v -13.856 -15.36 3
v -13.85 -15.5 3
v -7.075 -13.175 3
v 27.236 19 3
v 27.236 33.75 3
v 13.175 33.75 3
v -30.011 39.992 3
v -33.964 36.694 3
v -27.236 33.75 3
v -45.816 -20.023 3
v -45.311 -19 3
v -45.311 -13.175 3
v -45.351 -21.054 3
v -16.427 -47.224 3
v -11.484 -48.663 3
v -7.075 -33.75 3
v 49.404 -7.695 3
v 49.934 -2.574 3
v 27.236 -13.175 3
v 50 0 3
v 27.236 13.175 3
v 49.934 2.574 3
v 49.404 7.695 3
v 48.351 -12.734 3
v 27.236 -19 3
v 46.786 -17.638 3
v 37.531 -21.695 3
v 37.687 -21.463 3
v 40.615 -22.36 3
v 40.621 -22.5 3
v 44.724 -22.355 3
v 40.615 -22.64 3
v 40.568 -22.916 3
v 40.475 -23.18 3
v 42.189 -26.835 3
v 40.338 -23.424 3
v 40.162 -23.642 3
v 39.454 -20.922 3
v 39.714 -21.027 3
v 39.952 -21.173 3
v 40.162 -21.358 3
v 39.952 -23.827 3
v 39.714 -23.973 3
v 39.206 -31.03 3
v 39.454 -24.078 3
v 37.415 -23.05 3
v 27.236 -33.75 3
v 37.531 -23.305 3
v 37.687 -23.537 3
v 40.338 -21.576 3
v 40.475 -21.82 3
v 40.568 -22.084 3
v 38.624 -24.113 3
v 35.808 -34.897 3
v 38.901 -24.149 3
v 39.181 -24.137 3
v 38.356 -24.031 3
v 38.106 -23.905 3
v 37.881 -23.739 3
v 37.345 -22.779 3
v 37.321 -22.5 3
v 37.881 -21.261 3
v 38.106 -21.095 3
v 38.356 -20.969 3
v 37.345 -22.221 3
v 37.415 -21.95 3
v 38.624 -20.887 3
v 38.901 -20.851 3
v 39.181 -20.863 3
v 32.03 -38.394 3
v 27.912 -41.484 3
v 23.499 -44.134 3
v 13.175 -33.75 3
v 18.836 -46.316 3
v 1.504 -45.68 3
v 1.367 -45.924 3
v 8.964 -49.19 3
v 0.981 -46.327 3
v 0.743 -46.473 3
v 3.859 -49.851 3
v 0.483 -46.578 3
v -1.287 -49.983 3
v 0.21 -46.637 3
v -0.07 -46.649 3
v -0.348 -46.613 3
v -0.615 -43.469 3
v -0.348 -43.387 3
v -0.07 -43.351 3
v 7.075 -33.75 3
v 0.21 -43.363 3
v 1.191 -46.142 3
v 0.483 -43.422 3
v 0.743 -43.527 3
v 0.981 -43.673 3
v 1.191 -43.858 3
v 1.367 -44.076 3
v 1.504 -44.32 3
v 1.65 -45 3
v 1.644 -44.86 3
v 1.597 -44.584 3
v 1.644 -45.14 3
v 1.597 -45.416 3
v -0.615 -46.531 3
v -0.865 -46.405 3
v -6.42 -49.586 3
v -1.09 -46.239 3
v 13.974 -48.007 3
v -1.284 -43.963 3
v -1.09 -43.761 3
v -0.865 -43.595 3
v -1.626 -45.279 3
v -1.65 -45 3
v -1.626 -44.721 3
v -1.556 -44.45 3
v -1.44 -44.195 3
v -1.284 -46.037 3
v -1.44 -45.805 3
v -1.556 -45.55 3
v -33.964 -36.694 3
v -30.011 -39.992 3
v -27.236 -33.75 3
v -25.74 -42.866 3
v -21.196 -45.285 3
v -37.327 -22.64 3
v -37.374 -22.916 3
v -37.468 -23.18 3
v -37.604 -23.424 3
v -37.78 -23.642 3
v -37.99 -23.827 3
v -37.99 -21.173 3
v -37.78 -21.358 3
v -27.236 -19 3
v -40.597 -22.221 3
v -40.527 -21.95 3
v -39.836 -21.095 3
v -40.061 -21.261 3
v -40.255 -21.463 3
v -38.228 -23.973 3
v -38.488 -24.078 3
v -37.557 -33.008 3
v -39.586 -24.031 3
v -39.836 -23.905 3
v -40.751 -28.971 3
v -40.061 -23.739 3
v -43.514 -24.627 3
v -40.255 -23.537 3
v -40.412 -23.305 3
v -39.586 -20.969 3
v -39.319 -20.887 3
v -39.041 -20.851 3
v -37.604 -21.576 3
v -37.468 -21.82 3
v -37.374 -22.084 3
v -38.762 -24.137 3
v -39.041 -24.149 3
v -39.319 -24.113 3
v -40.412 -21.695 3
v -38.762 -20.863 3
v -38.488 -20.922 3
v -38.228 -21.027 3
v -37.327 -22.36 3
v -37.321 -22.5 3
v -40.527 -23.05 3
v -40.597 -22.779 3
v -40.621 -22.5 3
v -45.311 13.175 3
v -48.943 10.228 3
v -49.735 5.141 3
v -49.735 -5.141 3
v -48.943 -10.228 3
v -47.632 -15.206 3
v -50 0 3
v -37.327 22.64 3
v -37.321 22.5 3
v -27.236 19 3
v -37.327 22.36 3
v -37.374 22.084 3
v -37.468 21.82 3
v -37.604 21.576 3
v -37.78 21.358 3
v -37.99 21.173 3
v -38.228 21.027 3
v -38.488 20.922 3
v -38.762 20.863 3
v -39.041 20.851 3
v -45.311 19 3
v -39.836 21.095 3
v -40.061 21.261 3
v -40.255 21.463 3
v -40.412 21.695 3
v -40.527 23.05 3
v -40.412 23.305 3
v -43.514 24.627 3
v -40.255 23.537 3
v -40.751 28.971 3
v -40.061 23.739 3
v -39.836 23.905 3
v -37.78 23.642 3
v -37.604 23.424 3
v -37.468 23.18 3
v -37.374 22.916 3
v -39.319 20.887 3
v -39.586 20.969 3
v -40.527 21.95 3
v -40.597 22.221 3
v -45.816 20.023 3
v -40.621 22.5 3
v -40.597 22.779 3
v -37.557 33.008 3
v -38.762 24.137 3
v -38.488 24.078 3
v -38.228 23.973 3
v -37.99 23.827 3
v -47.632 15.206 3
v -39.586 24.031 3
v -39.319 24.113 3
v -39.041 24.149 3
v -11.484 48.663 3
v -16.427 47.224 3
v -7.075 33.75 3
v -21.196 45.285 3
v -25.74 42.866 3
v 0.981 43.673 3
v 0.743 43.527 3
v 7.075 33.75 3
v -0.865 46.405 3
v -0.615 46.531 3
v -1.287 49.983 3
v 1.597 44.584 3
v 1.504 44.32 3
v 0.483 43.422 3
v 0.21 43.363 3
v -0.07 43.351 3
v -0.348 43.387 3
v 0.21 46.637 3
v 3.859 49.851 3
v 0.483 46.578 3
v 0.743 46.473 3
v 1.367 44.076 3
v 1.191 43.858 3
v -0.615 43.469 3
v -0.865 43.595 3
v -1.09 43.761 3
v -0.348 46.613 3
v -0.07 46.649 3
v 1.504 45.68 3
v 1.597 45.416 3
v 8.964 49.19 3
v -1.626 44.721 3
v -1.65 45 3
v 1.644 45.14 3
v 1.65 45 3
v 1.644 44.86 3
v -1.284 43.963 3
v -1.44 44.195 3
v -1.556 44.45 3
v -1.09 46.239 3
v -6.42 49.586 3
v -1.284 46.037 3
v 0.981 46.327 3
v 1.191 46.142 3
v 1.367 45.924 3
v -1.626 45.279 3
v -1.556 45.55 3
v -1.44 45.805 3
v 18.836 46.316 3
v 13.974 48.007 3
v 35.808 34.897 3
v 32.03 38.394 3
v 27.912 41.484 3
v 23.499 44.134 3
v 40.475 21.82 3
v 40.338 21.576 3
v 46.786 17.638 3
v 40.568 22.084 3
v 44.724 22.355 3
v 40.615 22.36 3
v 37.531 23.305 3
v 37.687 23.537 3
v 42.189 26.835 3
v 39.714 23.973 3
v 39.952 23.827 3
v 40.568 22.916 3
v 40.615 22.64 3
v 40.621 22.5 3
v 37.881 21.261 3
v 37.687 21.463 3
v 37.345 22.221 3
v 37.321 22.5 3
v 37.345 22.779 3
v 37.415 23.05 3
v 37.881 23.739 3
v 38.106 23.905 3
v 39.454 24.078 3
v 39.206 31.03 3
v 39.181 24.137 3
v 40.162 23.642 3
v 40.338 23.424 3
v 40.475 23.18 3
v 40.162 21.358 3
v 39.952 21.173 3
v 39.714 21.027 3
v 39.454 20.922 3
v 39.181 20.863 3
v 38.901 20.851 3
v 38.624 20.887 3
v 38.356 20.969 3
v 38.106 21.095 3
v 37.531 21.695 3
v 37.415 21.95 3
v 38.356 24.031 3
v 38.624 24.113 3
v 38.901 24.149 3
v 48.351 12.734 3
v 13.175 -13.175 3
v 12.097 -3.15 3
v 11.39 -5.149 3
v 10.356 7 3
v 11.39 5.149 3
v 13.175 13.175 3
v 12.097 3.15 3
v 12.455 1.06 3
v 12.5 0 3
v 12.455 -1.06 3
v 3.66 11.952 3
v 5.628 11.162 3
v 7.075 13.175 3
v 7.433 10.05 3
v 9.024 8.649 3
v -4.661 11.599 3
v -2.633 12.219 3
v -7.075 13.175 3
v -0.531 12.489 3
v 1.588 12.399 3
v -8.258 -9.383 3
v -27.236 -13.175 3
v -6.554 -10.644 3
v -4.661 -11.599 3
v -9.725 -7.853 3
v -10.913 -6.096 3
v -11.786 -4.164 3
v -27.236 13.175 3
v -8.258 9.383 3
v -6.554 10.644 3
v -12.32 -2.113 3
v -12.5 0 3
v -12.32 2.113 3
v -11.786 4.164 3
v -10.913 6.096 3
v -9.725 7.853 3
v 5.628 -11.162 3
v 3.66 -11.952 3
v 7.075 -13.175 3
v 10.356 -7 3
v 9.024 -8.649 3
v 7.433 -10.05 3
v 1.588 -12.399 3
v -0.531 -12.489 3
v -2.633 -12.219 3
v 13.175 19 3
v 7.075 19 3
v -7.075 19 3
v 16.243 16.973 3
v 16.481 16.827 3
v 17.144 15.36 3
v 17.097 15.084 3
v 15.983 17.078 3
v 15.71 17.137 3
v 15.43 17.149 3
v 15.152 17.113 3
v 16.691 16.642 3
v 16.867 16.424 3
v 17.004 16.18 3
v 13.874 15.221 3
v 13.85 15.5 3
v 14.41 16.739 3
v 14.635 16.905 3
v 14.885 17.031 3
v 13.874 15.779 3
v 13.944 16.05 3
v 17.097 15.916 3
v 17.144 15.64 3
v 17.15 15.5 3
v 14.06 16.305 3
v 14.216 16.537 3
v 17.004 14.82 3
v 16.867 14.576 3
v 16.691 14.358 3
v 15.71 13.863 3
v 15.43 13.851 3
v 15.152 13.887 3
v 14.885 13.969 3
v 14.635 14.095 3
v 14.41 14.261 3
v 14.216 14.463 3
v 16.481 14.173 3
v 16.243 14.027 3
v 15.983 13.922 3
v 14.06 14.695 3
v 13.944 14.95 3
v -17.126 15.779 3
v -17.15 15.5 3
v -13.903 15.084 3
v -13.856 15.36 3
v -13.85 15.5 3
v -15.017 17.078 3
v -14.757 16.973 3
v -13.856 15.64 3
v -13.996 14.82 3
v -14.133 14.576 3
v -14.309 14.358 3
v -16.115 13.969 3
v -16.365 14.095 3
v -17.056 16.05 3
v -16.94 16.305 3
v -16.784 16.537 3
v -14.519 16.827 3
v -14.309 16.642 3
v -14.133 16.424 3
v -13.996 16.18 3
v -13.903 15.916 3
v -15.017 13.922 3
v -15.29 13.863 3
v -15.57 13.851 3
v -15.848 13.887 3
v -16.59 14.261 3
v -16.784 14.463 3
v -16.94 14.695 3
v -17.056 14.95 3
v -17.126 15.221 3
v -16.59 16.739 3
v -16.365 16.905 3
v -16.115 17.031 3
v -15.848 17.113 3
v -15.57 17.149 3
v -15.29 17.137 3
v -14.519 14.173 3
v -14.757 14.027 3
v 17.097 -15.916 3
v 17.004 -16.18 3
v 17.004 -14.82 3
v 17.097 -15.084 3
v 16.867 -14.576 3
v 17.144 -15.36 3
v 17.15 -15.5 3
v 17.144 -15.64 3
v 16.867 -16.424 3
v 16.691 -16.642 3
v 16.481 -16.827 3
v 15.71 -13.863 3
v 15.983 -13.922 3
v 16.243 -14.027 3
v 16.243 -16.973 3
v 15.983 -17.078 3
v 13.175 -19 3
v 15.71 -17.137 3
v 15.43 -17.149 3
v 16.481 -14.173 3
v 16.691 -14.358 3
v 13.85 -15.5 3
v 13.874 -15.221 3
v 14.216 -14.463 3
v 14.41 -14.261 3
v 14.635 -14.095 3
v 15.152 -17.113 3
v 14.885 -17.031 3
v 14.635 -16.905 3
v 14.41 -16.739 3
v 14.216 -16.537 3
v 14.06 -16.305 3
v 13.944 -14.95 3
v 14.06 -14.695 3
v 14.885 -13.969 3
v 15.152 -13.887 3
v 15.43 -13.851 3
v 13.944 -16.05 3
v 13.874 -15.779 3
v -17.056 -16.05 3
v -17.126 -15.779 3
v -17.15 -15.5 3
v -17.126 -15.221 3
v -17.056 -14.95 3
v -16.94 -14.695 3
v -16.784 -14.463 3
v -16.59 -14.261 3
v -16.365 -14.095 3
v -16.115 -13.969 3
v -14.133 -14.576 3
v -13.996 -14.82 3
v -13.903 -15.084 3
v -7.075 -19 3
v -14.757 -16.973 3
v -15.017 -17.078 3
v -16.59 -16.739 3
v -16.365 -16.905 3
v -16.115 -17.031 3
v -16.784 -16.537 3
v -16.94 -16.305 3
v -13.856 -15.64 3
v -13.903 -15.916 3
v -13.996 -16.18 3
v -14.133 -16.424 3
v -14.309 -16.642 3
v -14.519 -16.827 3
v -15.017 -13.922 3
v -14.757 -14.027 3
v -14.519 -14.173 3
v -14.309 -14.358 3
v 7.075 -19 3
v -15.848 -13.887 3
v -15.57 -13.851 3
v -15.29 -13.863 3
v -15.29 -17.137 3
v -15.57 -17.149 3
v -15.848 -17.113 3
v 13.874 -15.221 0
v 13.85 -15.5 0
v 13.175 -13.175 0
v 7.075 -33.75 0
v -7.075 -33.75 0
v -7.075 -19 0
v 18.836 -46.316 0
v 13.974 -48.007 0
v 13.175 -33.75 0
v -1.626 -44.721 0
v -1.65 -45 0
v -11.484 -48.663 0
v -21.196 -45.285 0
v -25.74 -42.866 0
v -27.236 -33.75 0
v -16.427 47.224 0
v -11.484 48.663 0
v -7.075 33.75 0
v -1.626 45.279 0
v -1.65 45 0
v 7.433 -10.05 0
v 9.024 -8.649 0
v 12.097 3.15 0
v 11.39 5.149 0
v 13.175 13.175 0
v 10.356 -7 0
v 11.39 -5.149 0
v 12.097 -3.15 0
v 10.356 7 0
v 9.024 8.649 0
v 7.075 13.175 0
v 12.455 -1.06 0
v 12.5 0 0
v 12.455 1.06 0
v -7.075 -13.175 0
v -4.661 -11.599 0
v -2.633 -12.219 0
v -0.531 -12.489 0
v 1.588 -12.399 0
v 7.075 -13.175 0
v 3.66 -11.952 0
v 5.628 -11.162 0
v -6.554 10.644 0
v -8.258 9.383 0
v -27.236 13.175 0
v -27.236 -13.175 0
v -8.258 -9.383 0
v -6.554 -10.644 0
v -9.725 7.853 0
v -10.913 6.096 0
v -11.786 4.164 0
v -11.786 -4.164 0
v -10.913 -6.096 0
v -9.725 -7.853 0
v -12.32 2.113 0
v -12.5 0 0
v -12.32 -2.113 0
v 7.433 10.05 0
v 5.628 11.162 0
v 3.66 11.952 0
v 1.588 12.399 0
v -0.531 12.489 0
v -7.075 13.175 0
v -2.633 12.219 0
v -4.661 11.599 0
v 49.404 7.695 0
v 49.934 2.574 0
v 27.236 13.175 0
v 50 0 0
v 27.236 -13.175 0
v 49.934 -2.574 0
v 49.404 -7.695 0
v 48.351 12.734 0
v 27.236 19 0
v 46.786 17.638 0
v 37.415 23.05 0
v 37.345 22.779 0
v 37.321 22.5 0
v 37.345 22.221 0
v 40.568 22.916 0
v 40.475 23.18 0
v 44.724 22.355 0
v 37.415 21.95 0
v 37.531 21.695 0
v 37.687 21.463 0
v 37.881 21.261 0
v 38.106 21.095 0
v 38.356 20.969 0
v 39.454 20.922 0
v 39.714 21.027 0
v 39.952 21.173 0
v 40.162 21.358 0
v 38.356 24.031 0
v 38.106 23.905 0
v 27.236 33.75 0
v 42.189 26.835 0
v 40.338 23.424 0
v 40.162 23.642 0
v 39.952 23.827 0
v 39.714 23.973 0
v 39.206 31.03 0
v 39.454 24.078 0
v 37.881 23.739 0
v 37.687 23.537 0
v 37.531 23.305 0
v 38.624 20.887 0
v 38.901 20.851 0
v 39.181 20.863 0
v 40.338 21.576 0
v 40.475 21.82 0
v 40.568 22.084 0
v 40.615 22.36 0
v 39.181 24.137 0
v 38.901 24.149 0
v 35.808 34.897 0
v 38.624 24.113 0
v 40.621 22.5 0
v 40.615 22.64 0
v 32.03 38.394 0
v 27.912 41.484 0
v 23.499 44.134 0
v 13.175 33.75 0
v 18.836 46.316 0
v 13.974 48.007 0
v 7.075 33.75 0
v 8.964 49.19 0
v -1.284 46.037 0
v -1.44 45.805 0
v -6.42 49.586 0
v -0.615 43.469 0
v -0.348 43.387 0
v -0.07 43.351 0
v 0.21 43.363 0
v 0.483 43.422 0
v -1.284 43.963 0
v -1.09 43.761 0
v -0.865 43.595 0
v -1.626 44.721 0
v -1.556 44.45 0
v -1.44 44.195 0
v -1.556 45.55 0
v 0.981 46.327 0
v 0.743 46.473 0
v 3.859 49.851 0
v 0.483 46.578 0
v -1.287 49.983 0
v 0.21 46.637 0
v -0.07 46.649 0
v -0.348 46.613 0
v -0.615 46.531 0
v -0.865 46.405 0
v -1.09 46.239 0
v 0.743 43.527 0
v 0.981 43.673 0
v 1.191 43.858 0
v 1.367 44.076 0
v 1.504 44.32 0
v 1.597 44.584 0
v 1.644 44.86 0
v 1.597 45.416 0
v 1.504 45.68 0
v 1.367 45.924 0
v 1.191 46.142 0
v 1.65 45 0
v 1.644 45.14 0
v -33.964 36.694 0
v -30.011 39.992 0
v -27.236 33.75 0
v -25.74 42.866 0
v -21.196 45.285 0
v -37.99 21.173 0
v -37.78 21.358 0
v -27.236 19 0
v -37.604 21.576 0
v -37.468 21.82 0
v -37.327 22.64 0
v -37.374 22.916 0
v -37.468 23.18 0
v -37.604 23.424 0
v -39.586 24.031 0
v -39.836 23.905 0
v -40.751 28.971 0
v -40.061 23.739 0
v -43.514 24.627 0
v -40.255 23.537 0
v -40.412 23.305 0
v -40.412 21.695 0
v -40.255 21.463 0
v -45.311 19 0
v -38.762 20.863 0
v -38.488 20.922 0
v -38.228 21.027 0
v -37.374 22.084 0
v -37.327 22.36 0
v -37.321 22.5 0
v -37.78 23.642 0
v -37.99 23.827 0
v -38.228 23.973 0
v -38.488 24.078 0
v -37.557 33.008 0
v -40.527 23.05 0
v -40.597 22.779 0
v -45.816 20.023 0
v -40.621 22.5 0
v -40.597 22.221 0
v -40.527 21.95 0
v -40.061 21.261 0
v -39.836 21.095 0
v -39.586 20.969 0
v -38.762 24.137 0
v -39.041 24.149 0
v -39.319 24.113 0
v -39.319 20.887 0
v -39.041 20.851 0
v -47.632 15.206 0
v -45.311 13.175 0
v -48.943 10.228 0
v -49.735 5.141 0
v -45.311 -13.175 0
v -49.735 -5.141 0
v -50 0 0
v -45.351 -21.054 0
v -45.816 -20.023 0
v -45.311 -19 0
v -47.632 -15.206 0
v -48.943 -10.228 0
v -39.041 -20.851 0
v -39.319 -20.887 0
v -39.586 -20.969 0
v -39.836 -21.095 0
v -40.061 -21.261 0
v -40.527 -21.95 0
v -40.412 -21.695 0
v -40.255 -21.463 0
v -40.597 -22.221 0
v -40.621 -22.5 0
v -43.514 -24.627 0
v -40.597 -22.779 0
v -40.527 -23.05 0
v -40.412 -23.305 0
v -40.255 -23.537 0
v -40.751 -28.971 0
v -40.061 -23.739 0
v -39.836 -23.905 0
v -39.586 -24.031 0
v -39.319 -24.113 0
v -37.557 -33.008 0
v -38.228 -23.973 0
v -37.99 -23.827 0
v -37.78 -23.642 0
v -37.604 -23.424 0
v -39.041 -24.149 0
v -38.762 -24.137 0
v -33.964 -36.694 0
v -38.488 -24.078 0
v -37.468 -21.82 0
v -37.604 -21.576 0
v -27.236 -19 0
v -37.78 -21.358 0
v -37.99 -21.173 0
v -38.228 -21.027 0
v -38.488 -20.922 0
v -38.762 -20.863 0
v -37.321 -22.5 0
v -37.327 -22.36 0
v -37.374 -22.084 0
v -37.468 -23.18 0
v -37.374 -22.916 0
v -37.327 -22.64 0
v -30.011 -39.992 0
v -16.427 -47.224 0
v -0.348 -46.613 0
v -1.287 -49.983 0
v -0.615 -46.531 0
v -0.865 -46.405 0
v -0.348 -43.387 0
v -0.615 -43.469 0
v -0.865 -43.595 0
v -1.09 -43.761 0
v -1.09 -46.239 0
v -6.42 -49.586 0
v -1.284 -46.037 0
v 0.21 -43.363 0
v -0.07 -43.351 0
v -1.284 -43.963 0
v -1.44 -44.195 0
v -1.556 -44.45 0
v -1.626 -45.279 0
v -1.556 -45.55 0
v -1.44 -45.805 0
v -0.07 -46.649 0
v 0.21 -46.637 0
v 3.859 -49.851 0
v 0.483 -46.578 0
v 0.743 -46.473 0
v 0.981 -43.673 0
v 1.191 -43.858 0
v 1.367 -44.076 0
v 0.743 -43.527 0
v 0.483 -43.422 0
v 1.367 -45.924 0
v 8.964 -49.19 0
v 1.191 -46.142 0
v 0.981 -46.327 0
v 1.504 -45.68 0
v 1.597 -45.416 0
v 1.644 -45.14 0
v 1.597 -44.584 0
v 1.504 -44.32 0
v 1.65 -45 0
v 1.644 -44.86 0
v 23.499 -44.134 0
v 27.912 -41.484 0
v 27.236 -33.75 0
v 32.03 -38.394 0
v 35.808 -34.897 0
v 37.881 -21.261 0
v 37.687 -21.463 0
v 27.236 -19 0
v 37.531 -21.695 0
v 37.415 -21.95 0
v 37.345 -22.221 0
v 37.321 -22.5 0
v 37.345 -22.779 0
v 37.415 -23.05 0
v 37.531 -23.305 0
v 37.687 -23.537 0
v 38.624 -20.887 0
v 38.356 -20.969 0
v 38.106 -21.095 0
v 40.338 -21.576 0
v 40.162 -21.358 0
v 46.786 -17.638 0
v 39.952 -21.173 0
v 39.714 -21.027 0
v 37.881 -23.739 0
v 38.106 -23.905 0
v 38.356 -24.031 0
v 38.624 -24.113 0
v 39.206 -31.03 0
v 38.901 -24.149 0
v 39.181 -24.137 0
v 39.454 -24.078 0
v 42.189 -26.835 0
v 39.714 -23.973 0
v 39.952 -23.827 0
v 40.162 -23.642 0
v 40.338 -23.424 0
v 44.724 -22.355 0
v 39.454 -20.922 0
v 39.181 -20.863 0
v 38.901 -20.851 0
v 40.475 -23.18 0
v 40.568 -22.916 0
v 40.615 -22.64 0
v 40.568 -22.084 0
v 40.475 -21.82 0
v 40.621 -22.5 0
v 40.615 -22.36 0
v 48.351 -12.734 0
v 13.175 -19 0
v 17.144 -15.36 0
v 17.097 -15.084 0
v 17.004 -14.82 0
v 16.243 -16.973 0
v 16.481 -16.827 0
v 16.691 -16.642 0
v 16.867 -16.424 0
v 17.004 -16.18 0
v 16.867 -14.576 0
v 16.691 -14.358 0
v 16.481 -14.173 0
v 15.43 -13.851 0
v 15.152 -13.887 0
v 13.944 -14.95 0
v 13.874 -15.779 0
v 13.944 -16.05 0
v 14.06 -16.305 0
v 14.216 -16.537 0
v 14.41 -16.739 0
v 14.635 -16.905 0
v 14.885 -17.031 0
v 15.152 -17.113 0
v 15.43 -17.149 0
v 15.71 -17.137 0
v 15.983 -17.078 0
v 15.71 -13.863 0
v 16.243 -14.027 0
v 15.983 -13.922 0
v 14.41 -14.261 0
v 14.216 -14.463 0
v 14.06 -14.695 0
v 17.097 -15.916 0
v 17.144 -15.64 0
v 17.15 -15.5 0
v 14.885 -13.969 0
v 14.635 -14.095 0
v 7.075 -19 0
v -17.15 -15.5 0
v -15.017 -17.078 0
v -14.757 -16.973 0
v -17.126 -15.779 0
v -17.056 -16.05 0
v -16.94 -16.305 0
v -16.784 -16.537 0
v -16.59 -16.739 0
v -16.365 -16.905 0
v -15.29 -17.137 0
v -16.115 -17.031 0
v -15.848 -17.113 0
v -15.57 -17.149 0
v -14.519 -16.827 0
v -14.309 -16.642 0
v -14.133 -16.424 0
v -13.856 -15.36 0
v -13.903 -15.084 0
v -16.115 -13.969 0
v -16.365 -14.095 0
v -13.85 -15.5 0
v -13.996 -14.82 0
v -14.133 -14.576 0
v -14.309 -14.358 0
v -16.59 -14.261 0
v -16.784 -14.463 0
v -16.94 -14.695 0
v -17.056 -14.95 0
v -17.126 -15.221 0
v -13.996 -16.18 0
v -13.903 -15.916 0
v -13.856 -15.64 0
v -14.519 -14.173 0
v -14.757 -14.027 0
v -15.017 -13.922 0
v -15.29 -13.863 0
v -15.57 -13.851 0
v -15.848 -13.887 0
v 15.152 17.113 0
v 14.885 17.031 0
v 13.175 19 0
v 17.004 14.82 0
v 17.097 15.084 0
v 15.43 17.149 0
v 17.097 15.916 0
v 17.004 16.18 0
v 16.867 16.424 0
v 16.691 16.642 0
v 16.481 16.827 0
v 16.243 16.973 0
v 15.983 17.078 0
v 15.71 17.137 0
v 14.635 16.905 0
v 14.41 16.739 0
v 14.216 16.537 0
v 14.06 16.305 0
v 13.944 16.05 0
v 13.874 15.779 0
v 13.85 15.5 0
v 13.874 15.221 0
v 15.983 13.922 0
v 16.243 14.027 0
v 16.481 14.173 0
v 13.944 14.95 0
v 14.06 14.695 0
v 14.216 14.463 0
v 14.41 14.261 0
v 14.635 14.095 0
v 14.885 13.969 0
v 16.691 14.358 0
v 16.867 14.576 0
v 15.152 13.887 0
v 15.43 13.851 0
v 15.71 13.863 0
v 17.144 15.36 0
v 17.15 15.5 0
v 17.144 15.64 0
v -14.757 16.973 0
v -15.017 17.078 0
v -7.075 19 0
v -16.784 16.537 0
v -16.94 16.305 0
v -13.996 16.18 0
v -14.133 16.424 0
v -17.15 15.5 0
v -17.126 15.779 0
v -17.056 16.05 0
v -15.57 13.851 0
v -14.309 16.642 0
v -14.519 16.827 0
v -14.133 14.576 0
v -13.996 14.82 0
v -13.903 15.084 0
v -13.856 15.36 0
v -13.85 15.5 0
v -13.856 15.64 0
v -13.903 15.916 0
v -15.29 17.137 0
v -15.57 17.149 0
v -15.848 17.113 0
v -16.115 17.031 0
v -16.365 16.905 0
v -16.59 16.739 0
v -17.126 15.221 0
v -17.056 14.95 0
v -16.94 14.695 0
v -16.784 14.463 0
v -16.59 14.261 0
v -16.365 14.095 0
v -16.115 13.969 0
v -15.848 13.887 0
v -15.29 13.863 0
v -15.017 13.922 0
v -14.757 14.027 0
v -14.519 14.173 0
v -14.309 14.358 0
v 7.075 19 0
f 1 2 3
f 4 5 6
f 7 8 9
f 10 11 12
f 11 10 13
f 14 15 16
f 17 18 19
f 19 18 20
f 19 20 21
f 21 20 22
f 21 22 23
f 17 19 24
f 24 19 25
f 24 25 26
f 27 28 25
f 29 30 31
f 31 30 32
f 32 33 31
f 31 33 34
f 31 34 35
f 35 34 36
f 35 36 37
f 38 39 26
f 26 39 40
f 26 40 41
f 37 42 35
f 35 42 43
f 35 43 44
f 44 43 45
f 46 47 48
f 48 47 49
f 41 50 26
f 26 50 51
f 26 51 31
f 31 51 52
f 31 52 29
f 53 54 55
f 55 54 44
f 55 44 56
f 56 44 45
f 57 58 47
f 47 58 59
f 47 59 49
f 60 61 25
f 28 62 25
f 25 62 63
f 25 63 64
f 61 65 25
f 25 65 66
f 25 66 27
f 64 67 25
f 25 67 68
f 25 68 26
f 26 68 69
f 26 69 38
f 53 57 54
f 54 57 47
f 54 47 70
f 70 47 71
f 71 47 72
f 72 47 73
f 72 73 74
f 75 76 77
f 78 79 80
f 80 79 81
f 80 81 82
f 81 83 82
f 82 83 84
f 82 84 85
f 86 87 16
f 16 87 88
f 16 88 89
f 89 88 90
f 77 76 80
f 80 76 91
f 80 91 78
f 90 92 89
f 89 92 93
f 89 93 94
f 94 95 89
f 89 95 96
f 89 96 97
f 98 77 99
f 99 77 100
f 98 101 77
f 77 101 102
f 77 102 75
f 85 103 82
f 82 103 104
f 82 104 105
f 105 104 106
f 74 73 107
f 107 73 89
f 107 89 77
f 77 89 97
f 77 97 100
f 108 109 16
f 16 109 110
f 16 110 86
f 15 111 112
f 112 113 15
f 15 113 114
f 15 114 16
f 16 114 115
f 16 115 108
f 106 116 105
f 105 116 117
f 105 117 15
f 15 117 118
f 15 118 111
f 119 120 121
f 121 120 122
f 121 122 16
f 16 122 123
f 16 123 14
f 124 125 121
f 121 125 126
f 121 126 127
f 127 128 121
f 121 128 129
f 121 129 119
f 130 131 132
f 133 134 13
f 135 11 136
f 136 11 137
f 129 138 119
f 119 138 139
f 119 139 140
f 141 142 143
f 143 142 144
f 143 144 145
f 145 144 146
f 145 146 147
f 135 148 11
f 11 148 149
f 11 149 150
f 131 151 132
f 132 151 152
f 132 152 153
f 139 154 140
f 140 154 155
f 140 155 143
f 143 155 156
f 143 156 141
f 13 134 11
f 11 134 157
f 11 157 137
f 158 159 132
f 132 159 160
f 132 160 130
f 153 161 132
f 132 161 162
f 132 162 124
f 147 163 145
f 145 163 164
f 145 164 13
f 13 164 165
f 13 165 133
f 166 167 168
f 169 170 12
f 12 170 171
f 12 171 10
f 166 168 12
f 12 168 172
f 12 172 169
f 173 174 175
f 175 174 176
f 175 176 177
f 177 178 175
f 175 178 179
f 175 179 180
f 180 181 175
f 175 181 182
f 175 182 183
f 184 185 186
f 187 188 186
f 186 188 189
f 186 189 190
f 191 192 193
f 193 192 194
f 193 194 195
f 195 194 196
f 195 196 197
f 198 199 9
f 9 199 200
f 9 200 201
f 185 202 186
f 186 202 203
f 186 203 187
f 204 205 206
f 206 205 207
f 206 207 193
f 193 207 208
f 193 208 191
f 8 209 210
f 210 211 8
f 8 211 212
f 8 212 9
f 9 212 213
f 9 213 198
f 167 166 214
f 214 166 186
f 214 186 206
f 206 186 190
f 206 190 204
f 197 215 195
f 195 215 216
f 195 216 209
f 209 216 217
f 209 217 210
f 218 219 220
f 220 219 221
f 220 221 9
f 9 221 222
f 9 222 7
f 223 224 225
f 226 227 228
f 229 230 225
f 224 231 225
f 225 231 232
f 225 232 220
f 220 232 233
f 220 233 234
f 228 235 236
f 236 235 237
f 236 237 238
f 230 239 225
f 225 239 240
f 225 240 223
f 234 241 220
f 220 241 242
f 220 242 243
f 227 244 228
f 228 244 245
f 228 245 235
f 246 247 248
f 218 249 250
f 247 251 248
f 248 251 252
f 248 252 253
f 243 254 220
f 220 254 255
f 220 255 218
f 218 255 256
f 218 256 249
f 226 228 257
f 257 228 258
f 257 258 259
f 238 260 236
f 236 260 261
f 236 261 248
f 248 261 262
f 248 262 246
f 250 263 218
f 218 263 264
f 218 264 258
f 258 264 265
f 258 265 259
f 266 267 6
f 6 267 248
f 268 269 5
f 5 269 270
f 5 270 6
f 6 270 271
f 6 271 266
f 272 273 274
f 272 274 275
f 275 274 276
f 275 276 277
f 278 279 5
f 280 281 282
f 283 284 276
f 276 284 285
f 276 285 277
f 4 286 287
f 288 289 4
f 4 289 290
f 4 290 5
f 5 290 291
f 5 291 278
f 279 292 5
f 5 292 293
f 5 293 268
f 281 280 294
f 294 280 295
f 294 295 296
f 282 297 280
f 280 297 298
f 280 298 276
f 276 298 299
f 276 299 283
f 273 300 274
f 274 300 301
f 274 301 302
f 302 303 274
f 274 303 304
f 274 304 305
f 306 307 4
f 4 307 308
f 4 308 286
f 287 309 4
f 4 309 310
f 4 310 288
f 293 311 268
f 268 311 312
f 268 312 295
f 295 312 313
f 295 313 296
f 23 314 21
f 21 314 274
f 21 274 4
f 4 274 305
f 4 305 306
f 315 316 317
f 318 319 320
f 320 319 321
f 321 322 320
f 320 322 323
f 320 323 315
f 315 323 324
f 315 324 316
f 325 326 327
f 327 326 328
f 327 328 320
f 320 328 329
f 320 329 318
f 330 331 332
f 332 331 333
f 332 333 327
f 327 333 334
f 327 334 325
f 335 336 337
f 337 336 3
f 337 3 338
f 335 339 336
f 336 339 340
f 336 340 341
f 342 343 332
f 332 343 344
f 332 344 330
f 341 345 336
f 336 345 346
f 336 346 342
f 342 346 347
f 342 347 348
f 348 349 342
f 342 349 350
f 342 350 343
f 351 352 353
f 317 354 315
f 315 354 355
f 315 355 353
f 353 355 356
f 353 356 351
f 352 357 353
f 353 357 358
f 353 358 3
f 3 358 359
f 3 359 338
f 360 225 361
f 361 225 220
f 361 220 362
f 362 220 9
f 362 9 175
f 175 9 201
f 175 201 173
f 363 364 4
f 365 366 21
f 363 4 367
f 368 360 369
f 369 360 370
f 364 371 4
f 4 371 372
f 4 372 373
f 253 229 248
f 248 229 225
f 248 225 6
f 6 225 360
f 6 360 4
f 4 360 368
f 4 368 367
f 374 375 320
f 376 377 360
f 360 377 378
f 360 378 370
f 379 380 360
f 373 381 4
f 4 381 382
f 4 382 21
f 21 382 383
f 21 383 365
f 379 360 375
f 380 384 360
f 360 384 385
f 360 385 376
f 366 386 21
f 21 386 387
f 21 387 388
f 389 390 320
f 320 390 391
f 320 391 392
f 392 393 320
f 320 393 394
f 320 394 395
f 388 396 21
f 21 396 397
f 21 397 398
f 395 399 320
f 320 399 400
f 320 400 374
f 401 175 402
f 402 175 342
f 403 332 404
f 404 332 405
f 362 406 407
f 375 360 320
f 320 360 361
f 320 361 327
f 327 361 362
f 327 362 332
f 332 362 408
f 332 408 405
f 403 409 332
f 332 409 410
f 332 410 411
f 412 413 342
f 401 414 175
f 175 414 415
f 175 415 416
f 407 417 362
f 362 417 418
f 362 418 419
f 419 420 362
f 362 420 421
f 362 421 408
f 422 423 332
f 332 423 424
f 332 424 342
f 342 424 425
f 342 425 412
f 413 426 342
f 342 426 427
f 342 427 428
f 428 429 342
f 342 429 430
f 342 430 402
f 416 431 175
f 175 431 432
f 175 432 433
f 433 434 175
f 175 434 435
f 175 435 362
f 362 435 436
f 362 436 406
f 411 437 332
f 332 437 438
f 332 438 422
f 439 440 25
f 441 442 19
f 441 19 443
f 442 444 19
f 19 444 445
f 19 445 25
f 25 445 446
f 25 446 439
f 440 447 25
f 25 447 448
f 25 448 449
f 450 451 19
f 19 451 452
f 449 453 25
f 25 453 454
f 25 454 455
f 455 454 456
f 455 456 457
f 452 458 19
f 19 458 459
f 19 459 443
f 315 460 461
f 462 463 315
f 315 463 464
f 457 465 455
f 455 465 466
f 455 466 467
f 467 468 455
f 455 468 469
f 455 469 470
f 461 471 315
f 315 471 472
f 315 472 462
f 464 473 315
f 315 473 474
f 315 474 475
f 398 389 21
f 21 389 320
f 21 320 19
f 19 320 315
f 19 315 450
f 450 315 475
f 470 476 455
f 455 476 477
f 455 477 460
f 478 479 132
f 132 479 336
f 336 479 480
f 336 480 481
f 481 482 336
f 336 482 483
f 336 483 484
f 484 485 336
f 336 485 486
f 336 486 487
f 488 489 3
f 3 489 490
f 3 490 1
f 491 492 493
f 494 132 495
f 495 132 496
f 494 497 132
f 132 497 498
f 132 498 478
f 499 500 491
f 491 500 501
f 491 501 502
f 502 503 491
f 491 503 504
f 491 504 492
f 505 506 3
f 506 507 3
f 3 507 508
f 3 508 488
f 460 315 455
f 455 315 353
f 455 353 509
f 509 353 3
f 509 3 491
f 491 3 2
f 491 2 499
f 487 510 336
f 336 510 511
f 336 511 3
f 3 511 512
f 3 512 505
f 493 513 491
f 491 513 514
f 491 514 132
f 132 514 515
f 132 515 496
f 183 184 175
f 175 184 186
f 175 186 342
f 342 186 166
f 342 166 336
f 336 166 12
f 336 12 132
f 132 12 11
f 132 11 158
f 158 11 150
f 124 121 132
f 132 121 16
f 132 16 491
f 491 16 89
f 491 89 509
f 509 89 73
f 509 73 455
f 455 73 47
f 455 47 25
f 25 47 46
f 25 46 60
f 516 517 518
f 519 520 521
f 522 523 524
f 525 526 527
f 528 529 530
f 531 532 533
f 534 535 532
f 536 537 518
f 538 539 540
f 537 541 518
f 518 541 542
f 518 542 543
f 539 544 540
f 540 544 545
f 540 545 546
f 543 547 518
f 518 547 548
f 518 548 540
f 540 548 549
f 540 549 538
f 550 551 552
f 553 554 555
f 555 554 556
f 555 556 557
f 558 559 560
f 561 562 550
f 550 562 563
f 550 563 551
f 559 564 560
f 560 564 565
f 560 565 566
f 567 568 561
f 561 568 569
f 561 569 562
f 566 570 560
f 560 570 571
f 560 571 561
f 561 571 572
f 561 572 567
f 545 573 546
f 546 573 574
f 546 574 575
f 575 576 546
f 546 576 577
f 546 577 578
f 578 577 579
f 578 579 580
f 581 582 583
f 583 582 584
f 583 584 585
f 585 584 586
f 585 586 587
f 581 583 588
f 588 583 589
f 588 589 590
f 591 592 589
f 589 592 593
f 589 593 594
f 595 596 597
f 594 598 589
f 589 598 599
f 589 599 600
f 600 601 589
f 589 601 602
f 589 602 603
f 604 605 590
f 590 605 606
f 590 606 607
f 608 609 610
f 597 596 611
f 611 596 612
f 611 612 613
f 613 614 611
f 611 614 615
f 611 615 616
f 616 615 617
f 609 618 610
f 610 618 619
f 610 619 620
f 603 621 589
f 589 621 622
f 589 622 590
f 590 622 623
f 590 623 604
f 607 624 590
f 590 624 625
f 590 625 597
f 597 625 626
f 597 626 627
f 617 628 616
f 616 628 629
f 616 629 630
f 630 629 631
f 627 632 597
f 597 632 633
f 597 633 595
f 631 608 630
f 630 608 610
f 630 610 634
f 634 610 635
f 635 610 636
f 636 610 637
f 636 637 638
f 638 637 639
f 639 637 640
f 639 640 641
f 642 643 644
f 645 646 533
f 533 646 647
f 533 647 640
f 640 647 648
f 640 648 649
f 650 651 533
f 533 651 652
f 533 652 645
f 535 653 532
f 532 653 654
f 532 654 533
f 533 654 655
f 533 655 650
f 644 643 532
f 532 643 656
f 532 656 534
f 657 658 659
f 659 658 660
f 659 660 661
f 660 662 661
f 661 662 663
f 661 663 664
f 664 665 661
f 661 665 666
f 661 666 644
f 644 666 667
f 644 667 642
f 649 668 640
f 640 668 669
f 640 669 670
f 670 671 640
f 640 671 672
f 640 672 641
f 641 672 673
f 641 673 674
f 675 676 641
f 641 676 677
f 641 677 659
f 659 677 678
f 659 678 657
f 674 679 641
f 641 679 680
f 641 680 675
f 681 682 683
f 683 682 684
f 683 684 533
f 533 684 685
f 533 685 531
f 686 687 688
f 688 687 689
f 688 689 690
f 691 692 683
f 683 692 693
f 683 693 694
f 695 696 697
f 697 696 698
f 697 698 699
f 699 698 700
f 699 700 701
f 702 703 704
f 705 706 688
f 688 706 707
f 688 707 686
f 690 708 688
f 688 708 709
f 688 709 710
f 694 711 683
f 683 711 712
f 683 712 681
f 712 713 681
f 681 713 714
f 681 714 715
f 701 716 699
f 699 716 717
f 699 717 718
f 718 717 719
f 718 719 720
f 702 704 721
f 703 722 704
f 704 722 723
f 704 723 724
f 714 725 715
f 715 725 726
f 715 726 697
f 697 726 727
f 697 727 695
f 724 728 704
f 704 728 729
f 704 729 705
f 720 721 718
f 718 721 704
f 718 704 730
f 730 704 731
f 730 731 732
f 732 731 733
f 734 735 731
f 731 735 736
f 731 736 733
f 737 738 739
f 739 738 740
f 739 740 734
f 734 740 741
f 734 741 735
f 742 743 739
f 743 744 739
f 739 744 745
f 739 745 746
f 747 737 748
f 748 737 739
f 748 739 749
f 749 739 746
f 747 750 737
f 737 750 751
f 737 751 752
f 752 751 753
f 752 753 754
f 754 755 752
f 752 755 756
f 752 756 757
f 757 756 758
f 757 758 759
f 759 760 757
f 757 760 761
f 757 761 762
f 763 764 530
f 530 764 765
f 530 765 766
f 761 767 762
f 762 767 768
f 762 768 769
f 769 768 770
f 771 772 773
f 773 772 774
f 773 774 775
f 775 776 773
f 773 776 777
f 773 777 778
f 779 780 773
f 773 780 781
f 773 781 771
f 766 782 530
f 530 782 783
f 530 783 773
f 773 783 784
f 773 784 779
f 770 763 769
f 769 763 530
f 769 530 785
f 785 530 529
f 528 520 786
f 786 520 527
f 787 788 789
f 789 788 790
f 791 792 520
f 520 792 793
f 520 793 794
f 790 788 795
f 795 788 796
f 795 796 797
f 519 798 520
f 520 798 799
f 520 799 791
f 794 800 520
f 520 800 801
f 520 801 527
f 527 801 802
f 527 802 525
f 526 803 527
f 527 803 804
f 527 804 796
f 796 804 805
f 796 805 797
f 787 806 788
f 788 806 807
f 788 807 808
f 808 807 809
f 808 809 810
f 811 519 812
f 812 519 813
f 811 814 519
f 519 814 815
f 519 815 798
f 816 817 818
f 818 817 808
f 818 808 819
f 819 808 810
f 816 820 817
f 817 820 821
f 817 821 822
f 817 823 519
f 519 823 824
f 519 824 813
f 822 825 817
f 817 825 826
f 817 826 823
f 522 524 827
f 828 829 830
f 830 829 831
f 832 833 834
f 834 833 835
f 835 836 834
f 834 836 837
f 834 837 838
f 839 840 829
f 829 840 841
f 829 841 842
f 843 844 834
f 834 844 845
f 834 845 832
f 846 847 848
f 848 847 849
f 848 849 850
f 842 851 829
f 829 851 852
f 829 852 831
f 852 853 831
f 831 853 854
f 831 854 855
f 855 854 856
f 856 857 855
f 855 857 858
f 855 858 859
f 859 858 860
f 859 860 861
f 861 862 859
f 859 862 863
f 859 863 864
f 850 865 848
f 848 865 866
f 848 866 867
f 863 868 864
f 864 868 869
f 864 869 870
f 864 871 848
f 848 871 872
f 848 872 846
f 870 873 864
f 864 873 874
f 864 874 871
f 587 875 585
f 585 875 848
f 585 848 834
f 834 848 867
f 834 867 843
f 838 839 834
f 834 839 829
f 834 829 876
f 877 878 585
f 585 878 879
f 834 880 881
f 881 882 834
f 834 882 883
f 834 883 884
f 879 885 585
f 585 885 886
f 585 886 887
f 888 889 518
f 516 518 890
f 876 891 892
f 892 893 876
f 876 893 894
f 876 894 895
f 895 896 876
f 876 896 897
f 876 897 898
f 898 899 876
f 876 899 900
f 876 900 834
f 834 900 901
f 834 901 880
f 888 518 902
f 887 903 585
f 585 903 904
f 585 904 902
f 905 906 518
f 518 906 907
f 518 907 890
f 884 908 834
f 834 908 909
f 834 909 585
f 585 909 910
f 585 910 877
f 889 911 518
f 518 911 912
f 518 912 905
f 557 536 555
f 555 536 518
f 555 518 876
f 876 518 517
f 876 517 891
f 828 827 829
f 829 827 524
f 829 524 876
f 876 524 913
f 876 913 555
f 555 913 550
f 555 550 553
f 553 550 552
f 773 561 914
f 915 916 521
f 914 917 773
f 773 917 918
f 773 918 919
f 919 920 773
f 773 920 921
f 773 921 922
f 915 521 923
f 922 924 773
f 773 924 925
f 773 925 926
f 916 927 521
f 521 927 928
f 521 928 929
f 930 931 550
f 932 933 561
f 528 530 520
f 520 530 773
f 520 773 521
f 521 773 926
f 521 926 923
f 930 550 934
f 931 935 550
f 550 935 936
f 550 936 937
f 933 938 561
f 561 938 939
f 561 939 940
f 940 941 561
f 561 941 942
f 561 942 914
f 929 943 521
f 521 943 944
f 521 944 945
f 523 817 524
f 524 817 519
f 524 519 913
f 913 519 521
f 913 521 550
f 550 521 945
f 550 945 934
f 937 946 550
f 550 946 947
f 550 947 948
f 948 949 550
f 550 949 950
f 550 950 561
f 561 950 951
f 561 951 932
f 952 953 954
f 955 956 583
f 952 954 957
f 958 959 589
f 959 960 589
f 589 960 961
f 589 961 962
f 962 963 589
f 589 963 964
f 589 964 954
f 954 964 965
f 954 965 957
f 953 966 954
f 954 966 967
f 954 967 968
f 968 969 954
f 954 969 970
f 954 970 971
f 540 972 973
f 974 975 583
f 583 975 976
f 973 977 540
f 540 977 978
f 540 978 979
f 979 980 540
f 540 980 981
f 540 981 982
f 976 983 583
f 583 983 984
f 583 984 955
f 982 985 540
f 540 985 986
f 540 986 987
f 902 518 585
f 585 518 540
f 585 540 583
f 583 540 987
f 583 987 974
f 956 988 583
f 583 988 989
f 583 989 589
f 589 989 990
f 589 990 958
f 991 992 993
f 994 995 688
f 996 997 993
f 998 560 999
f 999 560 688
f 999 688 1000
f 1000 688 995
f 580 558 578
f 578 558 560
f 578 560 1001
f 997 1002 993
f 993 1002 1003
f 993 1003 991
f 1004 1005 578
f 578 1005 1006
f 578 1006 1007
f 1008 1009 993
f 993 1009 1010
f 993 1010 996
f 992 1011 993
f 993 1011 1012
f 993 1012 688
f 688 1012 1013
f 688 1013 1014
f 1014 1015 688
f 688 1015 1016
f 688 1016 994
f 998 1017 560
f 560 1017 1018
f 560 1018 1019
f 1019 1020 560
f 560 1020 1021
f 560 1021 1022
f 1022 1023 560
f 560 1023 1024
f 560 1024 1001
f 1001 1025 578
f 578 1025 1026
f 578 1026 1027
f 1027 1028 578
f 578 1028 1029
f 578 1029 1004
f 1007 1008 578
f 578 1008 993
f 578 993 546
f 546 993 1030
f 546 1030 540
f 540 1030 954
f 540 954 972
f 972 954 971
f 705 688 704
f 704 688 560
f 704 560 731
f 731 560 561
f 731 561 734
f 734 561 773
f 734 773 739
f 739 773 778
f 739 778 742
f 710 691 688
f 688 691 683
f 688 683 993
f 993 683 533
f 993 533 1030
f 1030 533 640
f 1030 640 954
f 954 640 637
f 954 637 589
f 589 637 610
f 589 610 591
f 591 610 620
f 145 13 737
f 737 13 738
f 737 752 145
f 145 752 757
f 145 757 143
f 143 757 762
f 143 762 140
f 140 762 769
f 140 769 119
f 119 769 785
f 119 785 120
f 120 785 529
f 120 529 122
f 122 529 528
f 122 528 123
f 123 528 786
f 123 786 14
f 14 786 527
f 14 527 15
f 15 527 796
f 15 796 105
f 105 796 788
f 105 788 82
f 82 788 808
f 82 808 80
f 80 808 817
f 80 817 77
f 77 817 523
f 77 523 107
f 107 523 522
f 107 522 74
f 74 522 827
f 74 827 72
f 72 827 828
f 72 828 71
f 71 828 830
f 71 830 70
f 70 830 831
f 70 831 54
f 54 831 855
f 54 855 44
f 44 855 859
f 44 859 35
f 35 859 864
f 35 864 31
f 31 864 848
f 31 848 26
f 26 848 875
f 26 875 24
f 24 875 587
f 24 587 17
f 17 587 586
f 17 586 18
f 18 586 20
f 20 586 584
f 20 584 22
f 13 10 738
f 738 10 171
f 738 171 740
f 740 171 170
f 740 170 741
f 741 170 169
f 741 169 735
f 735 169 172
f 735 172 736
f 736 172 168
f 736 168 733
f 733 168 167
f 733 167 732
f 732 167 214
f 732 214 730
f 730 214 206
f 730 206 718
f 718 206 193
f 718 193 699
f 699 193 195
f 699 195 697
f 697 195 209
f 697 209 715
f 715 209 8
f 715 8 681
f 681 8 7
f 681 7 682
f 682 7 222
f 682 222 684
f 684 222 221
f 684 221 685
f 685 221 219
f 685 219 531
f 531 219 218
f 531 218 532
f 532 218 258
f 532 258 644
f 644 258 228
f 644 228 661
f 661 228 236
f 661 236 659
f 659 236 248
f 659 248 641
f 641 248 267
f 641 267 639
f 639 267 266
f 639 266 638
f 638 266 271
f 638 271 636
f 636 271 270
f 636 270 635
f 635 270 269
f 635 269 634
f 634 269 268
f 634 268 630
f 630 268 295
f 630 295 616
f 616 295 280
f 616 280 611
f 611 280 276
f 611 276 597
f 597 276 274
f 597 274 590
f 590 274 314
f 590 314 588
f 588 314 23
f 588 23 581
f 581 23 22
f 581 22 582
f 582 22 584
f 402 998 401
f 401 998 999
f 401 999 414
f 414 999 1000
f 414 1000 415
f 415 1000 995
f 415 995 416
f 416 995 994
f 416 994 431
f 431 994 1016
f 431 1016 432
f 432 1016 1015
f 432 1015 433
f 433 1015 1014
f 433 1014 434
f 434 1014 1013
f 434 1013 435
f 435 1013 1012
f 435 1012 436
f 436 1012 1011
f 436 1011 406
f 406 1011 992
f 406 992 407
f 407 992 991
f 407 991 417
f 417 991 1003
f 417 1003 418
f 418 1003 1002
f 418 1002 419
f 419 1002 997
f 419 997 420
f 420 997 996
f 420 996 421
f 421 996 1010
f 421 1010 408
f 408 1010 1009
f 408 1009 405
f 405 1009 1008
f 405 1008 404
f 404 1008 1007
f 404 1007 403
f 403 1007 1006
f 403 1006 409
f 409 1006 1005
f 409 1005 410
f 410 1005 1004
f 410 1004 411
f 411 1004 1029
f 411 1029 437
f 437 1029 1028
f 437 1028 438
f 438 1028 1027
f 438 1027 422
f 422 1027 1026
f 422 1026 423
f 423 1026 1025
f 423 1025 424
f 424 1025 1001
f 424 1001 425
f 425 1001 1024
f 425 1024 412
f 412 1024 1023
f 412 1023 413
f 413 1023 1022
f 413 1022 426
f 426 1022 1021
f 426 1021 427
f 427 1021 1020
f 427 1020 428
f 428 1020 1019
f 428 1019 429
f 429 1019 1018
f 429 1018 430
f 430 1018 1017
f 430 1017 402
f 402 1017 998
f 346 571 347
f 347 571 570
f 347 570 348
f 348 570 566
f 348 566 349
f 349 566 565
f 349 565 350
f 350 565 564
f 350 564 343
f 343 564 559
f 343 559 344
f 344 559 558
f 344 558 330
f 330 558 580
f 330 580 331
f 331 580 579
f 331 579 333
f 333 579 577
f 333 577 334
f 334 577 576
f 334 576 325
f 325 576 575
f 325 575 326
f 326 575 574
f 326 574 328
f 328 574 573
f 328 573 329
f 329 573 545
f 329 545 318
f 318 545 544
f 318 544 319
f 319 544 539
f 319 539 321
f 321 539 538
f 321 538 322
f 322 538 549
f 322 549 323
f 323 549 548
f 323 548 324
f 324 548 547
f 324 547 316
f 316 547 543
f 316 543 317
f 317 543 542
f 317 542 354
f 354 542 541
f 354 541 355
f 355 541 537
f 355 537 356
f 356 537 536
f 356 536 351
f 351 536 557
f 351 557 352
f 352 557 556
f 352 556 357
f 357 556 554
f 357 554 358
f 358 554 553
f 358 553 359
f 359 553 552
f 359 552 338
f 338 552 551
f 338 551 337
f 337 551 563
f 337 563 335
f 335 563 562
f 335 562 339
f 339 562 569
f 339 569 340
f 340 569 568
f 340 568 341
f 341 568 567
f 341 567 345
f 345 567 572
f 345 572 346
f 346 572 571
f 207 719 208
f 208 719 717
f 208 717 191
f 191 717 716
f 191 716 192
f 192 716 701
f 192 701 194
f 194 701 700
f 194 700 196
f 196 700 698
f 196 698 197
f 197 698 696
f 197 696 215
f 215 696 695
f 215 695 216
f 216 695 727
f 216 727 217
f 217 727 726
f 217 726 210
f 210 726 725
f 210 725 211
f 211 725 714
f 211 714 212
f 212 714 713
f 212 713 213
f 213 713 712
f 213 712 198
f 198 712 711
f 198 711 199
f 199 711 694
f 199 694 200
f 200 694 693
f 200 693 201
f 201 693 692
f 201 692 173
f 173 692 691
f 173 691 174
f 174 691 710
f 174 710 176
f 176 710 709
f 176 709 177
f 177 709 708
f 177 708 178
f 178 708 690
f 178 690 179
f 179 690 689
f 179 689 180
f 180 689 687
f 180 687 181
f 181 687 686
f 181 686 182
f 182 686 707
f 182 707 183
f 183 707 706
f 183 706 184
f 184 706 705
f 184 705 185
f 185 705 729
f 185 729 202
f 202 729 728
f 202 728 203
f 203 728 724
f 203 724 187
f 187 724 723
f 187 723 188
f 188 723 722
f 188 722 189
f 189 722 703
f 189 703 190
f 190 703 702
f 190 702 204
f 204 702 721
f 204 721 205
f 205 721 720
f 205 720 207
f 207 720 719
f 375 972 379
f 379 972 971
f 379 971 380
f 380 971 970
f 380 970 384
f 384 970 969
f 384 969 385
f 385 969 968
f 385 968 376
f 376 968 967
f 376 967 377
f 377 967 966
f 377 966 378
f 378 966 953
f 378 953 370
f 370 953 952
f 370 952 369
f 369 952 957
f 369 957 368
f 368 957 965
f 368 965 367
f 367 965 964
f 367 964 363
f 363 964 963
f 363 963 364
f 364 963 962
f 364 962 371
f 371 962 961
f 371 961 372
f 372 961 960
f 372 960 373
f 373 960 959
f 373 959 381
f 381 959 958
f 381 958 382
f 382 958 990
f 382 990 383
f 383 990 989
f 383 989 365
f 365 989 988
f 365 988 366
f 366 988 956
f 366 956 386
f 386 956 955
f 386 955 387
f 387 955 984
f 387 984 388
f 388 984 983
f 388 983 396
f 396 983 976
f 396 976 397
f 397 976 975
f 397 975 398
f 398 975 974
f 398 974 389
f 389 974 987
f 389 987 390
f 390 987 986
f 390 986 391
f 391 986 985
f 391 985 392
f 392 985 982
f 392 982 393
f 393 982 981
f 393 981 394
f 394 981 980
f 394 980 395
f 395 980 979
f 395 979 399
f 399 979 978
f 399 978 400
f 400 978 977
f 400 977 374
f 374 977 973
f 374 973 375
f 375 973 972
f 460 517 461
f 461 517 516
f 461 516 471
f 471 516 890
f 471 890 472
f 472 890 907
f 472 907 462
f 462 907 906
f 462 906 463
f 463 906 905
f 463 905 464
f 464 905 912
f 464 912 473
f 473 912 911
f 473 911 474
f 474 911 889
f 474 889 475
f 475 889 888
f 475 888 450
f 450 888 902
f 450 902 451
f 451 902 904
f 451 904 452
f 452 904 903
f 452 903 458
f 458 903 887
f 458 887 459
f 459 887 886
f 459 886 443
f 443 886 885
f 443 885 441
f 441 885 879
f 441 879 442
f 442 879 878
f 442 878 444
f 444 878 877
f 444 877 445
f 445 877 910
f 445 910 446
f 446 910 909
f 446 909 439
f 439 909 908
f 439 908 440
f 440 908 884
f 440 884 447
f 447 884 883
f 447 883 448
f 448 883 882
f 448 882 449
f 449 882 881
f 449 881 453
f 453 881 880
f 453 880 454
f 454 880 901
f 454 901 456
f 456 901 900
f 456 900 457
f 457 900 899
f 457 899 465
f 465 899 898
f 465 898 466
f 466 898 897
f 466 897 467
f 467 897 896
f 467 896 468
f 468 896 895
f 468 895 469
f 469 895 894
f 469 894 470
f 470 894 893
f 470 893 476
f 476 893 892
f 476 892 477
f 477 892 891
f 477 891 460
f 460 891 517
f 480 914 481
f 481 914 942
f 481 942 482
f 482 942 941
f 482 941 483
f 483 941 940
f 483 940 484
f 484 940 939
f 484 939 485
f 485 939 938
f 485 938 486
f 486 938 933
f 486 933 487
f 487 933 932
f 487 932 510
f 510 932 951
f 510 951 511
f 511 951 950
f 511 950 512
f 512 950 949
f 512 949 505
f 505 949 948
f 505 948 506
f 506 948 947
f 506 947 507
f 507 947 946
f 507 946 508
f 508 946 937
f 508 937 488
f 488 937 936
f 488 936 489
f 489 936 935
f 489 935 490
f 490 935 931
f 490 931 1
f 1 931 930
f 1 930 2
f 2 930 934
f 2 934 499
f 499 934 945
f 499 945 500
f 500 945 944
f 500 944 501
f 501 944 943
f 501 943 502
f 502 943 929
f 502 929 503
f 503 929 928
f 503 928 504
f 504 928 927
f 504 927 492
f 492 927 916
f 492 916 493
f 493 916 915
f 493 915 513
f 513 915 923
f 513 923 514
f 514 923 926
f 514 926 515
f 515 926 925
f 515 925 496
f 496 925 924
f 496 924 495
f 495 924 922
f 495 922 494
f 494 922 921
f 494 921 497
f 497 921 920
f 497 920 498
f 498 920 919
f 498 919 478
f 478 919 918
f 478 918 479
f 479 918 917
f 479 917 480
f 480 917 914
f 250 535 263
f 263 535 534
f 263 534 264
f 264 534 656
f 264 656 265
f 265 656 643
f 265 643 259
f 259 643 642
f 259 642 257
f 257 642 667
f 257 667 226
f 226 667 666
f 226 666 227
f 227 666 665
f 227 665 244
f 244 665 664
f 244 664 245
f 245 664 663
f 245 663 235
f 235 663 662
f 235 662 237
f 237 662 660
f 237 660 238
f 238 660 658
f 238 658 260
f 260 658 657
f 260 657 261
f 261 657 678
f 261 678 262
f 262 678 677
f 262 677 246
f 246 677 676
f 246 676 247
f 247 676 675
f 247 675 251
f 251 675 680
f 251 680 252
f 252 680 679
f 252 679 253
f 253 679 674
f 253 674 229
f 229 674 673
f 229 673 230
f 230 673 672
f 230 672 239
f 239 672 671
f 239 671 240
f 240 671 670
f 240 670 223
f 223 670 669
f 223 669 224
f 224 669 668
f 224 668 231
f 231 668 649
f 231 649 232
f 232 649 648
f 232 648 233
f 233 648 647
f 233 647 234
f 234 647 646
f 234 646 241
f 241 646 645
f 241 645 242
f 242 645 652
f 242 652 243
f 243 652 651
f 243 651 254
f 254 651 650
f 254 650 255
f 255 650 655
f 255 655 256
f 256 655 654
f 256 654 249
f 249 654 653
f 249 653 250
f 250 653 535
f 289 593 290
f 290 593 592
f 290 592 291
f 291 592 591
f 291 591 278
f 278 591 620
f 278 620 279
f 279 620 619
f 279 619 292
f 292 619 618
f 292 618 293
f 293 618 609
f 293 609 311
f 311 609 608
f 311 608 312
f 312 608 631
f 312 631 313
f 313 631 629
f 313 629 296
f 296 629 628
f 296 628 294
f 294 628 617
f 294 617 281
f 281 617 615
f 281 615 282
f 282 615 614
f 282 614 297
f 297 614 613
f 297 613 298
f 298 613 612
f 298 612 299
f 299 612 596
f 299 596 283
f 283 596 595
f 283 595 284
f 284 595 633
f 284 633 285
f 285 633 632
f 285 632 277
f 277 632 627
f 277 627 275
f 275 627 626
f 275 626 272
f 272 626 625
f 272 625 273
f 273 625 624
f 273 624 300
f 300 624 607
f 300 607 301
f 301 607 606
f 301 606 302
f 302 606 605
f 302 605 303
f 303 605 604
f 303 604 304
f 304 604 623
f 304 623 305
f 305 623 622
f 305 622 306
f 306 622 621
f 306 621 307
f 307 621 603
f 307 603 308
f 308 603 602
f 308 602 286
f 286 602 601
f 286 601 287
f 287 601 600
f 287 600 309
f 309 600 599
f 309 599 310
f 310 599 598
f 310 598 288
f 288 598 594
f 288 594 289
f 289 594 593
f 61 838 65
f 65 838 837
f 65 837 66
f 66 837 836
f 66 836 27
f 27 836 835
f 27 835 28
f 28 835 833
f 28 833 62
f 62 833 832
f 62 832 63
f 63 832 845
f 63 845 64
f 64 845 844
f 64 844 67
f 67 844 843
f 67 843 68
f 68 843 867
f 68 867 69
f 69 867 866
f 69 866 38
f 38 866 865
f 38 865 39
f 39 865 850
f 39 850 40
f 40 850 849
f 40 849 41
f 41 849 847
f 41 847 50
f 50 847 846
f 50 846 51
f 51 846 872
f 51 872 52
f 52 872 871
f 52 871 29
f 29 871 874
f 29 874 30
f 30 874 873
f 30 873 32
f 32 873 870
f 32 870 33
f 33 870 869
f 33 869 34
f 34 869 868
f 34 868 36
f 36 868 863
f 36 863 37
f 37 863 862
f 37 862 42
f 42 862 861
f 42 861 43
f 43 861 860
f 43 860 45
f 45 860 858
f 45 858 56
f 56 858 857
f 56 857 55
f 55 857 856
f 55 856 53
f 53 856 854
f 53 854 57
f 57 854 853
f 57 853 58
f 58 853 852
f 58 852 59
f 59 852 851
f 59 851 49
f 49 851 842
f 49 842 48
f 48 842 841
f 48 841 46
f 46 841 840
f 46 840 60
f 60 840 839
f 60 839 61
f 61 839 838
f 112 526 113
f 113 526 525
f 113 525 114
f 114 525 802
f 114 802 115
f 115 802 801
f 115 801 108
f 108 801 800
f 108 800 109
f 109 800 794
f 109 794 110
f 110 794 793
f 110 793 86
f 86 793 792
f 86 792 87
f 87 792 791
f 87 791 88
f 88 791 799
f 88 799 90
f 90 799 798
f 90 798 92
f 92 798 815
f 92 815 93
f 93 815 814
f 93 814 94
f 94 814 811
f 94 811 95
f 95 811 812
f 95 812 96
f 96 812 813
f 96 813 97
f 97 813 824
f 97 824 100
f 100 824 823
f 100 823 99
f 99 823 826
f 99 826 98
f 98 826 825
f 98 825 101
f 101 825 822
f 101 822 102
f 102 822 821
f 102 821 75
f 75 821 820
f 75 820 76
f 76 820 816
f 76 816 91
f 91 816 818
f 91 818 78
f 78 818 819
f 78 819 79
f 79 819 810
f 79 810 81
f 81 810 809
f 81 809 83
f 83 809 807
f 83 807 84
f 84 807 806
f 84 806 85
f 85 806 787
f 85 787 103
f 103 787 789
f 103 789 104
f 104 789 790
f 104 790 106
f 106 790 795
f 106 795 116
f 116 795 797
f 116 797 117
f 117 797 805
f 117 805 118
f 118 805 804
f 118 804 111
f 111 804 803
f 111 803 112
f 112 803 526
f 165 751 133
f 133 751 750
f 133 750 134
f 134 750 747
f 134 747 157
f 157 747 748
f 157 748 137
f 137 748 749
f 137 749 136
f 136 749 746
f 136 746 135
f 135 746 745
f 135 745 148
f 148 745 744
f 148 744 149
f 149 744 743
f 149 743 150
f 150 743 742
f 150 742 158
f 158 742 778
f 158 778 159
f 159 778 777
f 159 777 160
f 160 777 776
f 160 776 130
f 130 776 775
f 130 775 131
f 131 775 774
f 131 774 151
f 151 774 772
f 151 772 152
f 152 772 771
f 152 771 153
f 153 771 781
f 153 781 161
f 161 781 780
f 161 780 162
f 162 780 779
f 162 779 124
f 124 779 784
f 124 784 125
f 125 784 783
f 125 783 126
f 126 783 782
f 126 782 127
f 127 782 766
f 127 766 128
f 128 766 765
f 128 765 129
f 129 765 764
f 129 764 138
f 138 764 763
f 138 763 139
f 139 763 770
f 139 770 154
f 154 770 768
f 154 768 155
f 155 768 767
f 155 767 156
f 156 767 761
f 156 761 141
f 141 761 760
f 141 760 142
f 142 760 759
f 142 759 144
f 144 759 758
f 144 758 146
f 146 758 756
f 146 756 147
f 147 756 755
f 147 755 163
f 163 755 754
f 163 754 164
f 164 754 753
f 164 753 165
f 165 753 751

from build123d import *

# Parameters (mm, degrees)
SKETCH_1_R      = 50
SKETCH_1_R_2    = 1.65
SKETCH_1_R_3    = 12.5
EXTRUDE_1_DEPTH = 3


with BuildPart() as part:
    # 草图1 → 凸台-拉伸1 (new body)
    with BuildSketch(Plane.XY):
        Circle(SKETCH_1_R)
        with Locations((-15.5, 15.5)):
            Circle(SKETCH_1_R_2, mode=Mode.SUBTRACT)
        with Locations((15.5, 15.5)):
            Circle(SKETCH_1_R_2, mode=Mode.SUBTRACT)
        with Locations((15.5, -15.5)):
            Circle(SKETCH_1_R_2, mode=Mode.SUBTRACT)
        with Locations((-15.5, -15.5)):
            Circle(SKETCH_1_R_2, mode=Mode.SUBTRACT)
        Circle(SKETCH_1_R_3, mode=Mode.SUBTRACT)
        with Locations((-38.97114317, 22.5)):
            Circle(SKETCH_1_R_2, mode=Mode.SUBTRACT)
        with Locations((0, 45)):
            Circle(SKETCH_1_R_2, mode=Mode.SUBTRACT)
        with Locations((38.97114317, 22.5)):
            Circle(SKETCH_1_R_2, mode=Mode.SUBTRACT)
        with Locations((38.97114317, -22.5)):
            Circle(SKETCH_1_R_2, mode=Mode.SUBTRACT)
        with Locations((0, -45)):
            Circle(SKETCH_1_R_2, mode=Mode.SUBTRACT)
        with Locations((-38.97114317, -22.5)):
            Circle(SKETCH_1_R_2, mode=Mode.SUBTRACT)
    extrude(amount=EXTRUDE_1_DEPTH)


solid = part.part
